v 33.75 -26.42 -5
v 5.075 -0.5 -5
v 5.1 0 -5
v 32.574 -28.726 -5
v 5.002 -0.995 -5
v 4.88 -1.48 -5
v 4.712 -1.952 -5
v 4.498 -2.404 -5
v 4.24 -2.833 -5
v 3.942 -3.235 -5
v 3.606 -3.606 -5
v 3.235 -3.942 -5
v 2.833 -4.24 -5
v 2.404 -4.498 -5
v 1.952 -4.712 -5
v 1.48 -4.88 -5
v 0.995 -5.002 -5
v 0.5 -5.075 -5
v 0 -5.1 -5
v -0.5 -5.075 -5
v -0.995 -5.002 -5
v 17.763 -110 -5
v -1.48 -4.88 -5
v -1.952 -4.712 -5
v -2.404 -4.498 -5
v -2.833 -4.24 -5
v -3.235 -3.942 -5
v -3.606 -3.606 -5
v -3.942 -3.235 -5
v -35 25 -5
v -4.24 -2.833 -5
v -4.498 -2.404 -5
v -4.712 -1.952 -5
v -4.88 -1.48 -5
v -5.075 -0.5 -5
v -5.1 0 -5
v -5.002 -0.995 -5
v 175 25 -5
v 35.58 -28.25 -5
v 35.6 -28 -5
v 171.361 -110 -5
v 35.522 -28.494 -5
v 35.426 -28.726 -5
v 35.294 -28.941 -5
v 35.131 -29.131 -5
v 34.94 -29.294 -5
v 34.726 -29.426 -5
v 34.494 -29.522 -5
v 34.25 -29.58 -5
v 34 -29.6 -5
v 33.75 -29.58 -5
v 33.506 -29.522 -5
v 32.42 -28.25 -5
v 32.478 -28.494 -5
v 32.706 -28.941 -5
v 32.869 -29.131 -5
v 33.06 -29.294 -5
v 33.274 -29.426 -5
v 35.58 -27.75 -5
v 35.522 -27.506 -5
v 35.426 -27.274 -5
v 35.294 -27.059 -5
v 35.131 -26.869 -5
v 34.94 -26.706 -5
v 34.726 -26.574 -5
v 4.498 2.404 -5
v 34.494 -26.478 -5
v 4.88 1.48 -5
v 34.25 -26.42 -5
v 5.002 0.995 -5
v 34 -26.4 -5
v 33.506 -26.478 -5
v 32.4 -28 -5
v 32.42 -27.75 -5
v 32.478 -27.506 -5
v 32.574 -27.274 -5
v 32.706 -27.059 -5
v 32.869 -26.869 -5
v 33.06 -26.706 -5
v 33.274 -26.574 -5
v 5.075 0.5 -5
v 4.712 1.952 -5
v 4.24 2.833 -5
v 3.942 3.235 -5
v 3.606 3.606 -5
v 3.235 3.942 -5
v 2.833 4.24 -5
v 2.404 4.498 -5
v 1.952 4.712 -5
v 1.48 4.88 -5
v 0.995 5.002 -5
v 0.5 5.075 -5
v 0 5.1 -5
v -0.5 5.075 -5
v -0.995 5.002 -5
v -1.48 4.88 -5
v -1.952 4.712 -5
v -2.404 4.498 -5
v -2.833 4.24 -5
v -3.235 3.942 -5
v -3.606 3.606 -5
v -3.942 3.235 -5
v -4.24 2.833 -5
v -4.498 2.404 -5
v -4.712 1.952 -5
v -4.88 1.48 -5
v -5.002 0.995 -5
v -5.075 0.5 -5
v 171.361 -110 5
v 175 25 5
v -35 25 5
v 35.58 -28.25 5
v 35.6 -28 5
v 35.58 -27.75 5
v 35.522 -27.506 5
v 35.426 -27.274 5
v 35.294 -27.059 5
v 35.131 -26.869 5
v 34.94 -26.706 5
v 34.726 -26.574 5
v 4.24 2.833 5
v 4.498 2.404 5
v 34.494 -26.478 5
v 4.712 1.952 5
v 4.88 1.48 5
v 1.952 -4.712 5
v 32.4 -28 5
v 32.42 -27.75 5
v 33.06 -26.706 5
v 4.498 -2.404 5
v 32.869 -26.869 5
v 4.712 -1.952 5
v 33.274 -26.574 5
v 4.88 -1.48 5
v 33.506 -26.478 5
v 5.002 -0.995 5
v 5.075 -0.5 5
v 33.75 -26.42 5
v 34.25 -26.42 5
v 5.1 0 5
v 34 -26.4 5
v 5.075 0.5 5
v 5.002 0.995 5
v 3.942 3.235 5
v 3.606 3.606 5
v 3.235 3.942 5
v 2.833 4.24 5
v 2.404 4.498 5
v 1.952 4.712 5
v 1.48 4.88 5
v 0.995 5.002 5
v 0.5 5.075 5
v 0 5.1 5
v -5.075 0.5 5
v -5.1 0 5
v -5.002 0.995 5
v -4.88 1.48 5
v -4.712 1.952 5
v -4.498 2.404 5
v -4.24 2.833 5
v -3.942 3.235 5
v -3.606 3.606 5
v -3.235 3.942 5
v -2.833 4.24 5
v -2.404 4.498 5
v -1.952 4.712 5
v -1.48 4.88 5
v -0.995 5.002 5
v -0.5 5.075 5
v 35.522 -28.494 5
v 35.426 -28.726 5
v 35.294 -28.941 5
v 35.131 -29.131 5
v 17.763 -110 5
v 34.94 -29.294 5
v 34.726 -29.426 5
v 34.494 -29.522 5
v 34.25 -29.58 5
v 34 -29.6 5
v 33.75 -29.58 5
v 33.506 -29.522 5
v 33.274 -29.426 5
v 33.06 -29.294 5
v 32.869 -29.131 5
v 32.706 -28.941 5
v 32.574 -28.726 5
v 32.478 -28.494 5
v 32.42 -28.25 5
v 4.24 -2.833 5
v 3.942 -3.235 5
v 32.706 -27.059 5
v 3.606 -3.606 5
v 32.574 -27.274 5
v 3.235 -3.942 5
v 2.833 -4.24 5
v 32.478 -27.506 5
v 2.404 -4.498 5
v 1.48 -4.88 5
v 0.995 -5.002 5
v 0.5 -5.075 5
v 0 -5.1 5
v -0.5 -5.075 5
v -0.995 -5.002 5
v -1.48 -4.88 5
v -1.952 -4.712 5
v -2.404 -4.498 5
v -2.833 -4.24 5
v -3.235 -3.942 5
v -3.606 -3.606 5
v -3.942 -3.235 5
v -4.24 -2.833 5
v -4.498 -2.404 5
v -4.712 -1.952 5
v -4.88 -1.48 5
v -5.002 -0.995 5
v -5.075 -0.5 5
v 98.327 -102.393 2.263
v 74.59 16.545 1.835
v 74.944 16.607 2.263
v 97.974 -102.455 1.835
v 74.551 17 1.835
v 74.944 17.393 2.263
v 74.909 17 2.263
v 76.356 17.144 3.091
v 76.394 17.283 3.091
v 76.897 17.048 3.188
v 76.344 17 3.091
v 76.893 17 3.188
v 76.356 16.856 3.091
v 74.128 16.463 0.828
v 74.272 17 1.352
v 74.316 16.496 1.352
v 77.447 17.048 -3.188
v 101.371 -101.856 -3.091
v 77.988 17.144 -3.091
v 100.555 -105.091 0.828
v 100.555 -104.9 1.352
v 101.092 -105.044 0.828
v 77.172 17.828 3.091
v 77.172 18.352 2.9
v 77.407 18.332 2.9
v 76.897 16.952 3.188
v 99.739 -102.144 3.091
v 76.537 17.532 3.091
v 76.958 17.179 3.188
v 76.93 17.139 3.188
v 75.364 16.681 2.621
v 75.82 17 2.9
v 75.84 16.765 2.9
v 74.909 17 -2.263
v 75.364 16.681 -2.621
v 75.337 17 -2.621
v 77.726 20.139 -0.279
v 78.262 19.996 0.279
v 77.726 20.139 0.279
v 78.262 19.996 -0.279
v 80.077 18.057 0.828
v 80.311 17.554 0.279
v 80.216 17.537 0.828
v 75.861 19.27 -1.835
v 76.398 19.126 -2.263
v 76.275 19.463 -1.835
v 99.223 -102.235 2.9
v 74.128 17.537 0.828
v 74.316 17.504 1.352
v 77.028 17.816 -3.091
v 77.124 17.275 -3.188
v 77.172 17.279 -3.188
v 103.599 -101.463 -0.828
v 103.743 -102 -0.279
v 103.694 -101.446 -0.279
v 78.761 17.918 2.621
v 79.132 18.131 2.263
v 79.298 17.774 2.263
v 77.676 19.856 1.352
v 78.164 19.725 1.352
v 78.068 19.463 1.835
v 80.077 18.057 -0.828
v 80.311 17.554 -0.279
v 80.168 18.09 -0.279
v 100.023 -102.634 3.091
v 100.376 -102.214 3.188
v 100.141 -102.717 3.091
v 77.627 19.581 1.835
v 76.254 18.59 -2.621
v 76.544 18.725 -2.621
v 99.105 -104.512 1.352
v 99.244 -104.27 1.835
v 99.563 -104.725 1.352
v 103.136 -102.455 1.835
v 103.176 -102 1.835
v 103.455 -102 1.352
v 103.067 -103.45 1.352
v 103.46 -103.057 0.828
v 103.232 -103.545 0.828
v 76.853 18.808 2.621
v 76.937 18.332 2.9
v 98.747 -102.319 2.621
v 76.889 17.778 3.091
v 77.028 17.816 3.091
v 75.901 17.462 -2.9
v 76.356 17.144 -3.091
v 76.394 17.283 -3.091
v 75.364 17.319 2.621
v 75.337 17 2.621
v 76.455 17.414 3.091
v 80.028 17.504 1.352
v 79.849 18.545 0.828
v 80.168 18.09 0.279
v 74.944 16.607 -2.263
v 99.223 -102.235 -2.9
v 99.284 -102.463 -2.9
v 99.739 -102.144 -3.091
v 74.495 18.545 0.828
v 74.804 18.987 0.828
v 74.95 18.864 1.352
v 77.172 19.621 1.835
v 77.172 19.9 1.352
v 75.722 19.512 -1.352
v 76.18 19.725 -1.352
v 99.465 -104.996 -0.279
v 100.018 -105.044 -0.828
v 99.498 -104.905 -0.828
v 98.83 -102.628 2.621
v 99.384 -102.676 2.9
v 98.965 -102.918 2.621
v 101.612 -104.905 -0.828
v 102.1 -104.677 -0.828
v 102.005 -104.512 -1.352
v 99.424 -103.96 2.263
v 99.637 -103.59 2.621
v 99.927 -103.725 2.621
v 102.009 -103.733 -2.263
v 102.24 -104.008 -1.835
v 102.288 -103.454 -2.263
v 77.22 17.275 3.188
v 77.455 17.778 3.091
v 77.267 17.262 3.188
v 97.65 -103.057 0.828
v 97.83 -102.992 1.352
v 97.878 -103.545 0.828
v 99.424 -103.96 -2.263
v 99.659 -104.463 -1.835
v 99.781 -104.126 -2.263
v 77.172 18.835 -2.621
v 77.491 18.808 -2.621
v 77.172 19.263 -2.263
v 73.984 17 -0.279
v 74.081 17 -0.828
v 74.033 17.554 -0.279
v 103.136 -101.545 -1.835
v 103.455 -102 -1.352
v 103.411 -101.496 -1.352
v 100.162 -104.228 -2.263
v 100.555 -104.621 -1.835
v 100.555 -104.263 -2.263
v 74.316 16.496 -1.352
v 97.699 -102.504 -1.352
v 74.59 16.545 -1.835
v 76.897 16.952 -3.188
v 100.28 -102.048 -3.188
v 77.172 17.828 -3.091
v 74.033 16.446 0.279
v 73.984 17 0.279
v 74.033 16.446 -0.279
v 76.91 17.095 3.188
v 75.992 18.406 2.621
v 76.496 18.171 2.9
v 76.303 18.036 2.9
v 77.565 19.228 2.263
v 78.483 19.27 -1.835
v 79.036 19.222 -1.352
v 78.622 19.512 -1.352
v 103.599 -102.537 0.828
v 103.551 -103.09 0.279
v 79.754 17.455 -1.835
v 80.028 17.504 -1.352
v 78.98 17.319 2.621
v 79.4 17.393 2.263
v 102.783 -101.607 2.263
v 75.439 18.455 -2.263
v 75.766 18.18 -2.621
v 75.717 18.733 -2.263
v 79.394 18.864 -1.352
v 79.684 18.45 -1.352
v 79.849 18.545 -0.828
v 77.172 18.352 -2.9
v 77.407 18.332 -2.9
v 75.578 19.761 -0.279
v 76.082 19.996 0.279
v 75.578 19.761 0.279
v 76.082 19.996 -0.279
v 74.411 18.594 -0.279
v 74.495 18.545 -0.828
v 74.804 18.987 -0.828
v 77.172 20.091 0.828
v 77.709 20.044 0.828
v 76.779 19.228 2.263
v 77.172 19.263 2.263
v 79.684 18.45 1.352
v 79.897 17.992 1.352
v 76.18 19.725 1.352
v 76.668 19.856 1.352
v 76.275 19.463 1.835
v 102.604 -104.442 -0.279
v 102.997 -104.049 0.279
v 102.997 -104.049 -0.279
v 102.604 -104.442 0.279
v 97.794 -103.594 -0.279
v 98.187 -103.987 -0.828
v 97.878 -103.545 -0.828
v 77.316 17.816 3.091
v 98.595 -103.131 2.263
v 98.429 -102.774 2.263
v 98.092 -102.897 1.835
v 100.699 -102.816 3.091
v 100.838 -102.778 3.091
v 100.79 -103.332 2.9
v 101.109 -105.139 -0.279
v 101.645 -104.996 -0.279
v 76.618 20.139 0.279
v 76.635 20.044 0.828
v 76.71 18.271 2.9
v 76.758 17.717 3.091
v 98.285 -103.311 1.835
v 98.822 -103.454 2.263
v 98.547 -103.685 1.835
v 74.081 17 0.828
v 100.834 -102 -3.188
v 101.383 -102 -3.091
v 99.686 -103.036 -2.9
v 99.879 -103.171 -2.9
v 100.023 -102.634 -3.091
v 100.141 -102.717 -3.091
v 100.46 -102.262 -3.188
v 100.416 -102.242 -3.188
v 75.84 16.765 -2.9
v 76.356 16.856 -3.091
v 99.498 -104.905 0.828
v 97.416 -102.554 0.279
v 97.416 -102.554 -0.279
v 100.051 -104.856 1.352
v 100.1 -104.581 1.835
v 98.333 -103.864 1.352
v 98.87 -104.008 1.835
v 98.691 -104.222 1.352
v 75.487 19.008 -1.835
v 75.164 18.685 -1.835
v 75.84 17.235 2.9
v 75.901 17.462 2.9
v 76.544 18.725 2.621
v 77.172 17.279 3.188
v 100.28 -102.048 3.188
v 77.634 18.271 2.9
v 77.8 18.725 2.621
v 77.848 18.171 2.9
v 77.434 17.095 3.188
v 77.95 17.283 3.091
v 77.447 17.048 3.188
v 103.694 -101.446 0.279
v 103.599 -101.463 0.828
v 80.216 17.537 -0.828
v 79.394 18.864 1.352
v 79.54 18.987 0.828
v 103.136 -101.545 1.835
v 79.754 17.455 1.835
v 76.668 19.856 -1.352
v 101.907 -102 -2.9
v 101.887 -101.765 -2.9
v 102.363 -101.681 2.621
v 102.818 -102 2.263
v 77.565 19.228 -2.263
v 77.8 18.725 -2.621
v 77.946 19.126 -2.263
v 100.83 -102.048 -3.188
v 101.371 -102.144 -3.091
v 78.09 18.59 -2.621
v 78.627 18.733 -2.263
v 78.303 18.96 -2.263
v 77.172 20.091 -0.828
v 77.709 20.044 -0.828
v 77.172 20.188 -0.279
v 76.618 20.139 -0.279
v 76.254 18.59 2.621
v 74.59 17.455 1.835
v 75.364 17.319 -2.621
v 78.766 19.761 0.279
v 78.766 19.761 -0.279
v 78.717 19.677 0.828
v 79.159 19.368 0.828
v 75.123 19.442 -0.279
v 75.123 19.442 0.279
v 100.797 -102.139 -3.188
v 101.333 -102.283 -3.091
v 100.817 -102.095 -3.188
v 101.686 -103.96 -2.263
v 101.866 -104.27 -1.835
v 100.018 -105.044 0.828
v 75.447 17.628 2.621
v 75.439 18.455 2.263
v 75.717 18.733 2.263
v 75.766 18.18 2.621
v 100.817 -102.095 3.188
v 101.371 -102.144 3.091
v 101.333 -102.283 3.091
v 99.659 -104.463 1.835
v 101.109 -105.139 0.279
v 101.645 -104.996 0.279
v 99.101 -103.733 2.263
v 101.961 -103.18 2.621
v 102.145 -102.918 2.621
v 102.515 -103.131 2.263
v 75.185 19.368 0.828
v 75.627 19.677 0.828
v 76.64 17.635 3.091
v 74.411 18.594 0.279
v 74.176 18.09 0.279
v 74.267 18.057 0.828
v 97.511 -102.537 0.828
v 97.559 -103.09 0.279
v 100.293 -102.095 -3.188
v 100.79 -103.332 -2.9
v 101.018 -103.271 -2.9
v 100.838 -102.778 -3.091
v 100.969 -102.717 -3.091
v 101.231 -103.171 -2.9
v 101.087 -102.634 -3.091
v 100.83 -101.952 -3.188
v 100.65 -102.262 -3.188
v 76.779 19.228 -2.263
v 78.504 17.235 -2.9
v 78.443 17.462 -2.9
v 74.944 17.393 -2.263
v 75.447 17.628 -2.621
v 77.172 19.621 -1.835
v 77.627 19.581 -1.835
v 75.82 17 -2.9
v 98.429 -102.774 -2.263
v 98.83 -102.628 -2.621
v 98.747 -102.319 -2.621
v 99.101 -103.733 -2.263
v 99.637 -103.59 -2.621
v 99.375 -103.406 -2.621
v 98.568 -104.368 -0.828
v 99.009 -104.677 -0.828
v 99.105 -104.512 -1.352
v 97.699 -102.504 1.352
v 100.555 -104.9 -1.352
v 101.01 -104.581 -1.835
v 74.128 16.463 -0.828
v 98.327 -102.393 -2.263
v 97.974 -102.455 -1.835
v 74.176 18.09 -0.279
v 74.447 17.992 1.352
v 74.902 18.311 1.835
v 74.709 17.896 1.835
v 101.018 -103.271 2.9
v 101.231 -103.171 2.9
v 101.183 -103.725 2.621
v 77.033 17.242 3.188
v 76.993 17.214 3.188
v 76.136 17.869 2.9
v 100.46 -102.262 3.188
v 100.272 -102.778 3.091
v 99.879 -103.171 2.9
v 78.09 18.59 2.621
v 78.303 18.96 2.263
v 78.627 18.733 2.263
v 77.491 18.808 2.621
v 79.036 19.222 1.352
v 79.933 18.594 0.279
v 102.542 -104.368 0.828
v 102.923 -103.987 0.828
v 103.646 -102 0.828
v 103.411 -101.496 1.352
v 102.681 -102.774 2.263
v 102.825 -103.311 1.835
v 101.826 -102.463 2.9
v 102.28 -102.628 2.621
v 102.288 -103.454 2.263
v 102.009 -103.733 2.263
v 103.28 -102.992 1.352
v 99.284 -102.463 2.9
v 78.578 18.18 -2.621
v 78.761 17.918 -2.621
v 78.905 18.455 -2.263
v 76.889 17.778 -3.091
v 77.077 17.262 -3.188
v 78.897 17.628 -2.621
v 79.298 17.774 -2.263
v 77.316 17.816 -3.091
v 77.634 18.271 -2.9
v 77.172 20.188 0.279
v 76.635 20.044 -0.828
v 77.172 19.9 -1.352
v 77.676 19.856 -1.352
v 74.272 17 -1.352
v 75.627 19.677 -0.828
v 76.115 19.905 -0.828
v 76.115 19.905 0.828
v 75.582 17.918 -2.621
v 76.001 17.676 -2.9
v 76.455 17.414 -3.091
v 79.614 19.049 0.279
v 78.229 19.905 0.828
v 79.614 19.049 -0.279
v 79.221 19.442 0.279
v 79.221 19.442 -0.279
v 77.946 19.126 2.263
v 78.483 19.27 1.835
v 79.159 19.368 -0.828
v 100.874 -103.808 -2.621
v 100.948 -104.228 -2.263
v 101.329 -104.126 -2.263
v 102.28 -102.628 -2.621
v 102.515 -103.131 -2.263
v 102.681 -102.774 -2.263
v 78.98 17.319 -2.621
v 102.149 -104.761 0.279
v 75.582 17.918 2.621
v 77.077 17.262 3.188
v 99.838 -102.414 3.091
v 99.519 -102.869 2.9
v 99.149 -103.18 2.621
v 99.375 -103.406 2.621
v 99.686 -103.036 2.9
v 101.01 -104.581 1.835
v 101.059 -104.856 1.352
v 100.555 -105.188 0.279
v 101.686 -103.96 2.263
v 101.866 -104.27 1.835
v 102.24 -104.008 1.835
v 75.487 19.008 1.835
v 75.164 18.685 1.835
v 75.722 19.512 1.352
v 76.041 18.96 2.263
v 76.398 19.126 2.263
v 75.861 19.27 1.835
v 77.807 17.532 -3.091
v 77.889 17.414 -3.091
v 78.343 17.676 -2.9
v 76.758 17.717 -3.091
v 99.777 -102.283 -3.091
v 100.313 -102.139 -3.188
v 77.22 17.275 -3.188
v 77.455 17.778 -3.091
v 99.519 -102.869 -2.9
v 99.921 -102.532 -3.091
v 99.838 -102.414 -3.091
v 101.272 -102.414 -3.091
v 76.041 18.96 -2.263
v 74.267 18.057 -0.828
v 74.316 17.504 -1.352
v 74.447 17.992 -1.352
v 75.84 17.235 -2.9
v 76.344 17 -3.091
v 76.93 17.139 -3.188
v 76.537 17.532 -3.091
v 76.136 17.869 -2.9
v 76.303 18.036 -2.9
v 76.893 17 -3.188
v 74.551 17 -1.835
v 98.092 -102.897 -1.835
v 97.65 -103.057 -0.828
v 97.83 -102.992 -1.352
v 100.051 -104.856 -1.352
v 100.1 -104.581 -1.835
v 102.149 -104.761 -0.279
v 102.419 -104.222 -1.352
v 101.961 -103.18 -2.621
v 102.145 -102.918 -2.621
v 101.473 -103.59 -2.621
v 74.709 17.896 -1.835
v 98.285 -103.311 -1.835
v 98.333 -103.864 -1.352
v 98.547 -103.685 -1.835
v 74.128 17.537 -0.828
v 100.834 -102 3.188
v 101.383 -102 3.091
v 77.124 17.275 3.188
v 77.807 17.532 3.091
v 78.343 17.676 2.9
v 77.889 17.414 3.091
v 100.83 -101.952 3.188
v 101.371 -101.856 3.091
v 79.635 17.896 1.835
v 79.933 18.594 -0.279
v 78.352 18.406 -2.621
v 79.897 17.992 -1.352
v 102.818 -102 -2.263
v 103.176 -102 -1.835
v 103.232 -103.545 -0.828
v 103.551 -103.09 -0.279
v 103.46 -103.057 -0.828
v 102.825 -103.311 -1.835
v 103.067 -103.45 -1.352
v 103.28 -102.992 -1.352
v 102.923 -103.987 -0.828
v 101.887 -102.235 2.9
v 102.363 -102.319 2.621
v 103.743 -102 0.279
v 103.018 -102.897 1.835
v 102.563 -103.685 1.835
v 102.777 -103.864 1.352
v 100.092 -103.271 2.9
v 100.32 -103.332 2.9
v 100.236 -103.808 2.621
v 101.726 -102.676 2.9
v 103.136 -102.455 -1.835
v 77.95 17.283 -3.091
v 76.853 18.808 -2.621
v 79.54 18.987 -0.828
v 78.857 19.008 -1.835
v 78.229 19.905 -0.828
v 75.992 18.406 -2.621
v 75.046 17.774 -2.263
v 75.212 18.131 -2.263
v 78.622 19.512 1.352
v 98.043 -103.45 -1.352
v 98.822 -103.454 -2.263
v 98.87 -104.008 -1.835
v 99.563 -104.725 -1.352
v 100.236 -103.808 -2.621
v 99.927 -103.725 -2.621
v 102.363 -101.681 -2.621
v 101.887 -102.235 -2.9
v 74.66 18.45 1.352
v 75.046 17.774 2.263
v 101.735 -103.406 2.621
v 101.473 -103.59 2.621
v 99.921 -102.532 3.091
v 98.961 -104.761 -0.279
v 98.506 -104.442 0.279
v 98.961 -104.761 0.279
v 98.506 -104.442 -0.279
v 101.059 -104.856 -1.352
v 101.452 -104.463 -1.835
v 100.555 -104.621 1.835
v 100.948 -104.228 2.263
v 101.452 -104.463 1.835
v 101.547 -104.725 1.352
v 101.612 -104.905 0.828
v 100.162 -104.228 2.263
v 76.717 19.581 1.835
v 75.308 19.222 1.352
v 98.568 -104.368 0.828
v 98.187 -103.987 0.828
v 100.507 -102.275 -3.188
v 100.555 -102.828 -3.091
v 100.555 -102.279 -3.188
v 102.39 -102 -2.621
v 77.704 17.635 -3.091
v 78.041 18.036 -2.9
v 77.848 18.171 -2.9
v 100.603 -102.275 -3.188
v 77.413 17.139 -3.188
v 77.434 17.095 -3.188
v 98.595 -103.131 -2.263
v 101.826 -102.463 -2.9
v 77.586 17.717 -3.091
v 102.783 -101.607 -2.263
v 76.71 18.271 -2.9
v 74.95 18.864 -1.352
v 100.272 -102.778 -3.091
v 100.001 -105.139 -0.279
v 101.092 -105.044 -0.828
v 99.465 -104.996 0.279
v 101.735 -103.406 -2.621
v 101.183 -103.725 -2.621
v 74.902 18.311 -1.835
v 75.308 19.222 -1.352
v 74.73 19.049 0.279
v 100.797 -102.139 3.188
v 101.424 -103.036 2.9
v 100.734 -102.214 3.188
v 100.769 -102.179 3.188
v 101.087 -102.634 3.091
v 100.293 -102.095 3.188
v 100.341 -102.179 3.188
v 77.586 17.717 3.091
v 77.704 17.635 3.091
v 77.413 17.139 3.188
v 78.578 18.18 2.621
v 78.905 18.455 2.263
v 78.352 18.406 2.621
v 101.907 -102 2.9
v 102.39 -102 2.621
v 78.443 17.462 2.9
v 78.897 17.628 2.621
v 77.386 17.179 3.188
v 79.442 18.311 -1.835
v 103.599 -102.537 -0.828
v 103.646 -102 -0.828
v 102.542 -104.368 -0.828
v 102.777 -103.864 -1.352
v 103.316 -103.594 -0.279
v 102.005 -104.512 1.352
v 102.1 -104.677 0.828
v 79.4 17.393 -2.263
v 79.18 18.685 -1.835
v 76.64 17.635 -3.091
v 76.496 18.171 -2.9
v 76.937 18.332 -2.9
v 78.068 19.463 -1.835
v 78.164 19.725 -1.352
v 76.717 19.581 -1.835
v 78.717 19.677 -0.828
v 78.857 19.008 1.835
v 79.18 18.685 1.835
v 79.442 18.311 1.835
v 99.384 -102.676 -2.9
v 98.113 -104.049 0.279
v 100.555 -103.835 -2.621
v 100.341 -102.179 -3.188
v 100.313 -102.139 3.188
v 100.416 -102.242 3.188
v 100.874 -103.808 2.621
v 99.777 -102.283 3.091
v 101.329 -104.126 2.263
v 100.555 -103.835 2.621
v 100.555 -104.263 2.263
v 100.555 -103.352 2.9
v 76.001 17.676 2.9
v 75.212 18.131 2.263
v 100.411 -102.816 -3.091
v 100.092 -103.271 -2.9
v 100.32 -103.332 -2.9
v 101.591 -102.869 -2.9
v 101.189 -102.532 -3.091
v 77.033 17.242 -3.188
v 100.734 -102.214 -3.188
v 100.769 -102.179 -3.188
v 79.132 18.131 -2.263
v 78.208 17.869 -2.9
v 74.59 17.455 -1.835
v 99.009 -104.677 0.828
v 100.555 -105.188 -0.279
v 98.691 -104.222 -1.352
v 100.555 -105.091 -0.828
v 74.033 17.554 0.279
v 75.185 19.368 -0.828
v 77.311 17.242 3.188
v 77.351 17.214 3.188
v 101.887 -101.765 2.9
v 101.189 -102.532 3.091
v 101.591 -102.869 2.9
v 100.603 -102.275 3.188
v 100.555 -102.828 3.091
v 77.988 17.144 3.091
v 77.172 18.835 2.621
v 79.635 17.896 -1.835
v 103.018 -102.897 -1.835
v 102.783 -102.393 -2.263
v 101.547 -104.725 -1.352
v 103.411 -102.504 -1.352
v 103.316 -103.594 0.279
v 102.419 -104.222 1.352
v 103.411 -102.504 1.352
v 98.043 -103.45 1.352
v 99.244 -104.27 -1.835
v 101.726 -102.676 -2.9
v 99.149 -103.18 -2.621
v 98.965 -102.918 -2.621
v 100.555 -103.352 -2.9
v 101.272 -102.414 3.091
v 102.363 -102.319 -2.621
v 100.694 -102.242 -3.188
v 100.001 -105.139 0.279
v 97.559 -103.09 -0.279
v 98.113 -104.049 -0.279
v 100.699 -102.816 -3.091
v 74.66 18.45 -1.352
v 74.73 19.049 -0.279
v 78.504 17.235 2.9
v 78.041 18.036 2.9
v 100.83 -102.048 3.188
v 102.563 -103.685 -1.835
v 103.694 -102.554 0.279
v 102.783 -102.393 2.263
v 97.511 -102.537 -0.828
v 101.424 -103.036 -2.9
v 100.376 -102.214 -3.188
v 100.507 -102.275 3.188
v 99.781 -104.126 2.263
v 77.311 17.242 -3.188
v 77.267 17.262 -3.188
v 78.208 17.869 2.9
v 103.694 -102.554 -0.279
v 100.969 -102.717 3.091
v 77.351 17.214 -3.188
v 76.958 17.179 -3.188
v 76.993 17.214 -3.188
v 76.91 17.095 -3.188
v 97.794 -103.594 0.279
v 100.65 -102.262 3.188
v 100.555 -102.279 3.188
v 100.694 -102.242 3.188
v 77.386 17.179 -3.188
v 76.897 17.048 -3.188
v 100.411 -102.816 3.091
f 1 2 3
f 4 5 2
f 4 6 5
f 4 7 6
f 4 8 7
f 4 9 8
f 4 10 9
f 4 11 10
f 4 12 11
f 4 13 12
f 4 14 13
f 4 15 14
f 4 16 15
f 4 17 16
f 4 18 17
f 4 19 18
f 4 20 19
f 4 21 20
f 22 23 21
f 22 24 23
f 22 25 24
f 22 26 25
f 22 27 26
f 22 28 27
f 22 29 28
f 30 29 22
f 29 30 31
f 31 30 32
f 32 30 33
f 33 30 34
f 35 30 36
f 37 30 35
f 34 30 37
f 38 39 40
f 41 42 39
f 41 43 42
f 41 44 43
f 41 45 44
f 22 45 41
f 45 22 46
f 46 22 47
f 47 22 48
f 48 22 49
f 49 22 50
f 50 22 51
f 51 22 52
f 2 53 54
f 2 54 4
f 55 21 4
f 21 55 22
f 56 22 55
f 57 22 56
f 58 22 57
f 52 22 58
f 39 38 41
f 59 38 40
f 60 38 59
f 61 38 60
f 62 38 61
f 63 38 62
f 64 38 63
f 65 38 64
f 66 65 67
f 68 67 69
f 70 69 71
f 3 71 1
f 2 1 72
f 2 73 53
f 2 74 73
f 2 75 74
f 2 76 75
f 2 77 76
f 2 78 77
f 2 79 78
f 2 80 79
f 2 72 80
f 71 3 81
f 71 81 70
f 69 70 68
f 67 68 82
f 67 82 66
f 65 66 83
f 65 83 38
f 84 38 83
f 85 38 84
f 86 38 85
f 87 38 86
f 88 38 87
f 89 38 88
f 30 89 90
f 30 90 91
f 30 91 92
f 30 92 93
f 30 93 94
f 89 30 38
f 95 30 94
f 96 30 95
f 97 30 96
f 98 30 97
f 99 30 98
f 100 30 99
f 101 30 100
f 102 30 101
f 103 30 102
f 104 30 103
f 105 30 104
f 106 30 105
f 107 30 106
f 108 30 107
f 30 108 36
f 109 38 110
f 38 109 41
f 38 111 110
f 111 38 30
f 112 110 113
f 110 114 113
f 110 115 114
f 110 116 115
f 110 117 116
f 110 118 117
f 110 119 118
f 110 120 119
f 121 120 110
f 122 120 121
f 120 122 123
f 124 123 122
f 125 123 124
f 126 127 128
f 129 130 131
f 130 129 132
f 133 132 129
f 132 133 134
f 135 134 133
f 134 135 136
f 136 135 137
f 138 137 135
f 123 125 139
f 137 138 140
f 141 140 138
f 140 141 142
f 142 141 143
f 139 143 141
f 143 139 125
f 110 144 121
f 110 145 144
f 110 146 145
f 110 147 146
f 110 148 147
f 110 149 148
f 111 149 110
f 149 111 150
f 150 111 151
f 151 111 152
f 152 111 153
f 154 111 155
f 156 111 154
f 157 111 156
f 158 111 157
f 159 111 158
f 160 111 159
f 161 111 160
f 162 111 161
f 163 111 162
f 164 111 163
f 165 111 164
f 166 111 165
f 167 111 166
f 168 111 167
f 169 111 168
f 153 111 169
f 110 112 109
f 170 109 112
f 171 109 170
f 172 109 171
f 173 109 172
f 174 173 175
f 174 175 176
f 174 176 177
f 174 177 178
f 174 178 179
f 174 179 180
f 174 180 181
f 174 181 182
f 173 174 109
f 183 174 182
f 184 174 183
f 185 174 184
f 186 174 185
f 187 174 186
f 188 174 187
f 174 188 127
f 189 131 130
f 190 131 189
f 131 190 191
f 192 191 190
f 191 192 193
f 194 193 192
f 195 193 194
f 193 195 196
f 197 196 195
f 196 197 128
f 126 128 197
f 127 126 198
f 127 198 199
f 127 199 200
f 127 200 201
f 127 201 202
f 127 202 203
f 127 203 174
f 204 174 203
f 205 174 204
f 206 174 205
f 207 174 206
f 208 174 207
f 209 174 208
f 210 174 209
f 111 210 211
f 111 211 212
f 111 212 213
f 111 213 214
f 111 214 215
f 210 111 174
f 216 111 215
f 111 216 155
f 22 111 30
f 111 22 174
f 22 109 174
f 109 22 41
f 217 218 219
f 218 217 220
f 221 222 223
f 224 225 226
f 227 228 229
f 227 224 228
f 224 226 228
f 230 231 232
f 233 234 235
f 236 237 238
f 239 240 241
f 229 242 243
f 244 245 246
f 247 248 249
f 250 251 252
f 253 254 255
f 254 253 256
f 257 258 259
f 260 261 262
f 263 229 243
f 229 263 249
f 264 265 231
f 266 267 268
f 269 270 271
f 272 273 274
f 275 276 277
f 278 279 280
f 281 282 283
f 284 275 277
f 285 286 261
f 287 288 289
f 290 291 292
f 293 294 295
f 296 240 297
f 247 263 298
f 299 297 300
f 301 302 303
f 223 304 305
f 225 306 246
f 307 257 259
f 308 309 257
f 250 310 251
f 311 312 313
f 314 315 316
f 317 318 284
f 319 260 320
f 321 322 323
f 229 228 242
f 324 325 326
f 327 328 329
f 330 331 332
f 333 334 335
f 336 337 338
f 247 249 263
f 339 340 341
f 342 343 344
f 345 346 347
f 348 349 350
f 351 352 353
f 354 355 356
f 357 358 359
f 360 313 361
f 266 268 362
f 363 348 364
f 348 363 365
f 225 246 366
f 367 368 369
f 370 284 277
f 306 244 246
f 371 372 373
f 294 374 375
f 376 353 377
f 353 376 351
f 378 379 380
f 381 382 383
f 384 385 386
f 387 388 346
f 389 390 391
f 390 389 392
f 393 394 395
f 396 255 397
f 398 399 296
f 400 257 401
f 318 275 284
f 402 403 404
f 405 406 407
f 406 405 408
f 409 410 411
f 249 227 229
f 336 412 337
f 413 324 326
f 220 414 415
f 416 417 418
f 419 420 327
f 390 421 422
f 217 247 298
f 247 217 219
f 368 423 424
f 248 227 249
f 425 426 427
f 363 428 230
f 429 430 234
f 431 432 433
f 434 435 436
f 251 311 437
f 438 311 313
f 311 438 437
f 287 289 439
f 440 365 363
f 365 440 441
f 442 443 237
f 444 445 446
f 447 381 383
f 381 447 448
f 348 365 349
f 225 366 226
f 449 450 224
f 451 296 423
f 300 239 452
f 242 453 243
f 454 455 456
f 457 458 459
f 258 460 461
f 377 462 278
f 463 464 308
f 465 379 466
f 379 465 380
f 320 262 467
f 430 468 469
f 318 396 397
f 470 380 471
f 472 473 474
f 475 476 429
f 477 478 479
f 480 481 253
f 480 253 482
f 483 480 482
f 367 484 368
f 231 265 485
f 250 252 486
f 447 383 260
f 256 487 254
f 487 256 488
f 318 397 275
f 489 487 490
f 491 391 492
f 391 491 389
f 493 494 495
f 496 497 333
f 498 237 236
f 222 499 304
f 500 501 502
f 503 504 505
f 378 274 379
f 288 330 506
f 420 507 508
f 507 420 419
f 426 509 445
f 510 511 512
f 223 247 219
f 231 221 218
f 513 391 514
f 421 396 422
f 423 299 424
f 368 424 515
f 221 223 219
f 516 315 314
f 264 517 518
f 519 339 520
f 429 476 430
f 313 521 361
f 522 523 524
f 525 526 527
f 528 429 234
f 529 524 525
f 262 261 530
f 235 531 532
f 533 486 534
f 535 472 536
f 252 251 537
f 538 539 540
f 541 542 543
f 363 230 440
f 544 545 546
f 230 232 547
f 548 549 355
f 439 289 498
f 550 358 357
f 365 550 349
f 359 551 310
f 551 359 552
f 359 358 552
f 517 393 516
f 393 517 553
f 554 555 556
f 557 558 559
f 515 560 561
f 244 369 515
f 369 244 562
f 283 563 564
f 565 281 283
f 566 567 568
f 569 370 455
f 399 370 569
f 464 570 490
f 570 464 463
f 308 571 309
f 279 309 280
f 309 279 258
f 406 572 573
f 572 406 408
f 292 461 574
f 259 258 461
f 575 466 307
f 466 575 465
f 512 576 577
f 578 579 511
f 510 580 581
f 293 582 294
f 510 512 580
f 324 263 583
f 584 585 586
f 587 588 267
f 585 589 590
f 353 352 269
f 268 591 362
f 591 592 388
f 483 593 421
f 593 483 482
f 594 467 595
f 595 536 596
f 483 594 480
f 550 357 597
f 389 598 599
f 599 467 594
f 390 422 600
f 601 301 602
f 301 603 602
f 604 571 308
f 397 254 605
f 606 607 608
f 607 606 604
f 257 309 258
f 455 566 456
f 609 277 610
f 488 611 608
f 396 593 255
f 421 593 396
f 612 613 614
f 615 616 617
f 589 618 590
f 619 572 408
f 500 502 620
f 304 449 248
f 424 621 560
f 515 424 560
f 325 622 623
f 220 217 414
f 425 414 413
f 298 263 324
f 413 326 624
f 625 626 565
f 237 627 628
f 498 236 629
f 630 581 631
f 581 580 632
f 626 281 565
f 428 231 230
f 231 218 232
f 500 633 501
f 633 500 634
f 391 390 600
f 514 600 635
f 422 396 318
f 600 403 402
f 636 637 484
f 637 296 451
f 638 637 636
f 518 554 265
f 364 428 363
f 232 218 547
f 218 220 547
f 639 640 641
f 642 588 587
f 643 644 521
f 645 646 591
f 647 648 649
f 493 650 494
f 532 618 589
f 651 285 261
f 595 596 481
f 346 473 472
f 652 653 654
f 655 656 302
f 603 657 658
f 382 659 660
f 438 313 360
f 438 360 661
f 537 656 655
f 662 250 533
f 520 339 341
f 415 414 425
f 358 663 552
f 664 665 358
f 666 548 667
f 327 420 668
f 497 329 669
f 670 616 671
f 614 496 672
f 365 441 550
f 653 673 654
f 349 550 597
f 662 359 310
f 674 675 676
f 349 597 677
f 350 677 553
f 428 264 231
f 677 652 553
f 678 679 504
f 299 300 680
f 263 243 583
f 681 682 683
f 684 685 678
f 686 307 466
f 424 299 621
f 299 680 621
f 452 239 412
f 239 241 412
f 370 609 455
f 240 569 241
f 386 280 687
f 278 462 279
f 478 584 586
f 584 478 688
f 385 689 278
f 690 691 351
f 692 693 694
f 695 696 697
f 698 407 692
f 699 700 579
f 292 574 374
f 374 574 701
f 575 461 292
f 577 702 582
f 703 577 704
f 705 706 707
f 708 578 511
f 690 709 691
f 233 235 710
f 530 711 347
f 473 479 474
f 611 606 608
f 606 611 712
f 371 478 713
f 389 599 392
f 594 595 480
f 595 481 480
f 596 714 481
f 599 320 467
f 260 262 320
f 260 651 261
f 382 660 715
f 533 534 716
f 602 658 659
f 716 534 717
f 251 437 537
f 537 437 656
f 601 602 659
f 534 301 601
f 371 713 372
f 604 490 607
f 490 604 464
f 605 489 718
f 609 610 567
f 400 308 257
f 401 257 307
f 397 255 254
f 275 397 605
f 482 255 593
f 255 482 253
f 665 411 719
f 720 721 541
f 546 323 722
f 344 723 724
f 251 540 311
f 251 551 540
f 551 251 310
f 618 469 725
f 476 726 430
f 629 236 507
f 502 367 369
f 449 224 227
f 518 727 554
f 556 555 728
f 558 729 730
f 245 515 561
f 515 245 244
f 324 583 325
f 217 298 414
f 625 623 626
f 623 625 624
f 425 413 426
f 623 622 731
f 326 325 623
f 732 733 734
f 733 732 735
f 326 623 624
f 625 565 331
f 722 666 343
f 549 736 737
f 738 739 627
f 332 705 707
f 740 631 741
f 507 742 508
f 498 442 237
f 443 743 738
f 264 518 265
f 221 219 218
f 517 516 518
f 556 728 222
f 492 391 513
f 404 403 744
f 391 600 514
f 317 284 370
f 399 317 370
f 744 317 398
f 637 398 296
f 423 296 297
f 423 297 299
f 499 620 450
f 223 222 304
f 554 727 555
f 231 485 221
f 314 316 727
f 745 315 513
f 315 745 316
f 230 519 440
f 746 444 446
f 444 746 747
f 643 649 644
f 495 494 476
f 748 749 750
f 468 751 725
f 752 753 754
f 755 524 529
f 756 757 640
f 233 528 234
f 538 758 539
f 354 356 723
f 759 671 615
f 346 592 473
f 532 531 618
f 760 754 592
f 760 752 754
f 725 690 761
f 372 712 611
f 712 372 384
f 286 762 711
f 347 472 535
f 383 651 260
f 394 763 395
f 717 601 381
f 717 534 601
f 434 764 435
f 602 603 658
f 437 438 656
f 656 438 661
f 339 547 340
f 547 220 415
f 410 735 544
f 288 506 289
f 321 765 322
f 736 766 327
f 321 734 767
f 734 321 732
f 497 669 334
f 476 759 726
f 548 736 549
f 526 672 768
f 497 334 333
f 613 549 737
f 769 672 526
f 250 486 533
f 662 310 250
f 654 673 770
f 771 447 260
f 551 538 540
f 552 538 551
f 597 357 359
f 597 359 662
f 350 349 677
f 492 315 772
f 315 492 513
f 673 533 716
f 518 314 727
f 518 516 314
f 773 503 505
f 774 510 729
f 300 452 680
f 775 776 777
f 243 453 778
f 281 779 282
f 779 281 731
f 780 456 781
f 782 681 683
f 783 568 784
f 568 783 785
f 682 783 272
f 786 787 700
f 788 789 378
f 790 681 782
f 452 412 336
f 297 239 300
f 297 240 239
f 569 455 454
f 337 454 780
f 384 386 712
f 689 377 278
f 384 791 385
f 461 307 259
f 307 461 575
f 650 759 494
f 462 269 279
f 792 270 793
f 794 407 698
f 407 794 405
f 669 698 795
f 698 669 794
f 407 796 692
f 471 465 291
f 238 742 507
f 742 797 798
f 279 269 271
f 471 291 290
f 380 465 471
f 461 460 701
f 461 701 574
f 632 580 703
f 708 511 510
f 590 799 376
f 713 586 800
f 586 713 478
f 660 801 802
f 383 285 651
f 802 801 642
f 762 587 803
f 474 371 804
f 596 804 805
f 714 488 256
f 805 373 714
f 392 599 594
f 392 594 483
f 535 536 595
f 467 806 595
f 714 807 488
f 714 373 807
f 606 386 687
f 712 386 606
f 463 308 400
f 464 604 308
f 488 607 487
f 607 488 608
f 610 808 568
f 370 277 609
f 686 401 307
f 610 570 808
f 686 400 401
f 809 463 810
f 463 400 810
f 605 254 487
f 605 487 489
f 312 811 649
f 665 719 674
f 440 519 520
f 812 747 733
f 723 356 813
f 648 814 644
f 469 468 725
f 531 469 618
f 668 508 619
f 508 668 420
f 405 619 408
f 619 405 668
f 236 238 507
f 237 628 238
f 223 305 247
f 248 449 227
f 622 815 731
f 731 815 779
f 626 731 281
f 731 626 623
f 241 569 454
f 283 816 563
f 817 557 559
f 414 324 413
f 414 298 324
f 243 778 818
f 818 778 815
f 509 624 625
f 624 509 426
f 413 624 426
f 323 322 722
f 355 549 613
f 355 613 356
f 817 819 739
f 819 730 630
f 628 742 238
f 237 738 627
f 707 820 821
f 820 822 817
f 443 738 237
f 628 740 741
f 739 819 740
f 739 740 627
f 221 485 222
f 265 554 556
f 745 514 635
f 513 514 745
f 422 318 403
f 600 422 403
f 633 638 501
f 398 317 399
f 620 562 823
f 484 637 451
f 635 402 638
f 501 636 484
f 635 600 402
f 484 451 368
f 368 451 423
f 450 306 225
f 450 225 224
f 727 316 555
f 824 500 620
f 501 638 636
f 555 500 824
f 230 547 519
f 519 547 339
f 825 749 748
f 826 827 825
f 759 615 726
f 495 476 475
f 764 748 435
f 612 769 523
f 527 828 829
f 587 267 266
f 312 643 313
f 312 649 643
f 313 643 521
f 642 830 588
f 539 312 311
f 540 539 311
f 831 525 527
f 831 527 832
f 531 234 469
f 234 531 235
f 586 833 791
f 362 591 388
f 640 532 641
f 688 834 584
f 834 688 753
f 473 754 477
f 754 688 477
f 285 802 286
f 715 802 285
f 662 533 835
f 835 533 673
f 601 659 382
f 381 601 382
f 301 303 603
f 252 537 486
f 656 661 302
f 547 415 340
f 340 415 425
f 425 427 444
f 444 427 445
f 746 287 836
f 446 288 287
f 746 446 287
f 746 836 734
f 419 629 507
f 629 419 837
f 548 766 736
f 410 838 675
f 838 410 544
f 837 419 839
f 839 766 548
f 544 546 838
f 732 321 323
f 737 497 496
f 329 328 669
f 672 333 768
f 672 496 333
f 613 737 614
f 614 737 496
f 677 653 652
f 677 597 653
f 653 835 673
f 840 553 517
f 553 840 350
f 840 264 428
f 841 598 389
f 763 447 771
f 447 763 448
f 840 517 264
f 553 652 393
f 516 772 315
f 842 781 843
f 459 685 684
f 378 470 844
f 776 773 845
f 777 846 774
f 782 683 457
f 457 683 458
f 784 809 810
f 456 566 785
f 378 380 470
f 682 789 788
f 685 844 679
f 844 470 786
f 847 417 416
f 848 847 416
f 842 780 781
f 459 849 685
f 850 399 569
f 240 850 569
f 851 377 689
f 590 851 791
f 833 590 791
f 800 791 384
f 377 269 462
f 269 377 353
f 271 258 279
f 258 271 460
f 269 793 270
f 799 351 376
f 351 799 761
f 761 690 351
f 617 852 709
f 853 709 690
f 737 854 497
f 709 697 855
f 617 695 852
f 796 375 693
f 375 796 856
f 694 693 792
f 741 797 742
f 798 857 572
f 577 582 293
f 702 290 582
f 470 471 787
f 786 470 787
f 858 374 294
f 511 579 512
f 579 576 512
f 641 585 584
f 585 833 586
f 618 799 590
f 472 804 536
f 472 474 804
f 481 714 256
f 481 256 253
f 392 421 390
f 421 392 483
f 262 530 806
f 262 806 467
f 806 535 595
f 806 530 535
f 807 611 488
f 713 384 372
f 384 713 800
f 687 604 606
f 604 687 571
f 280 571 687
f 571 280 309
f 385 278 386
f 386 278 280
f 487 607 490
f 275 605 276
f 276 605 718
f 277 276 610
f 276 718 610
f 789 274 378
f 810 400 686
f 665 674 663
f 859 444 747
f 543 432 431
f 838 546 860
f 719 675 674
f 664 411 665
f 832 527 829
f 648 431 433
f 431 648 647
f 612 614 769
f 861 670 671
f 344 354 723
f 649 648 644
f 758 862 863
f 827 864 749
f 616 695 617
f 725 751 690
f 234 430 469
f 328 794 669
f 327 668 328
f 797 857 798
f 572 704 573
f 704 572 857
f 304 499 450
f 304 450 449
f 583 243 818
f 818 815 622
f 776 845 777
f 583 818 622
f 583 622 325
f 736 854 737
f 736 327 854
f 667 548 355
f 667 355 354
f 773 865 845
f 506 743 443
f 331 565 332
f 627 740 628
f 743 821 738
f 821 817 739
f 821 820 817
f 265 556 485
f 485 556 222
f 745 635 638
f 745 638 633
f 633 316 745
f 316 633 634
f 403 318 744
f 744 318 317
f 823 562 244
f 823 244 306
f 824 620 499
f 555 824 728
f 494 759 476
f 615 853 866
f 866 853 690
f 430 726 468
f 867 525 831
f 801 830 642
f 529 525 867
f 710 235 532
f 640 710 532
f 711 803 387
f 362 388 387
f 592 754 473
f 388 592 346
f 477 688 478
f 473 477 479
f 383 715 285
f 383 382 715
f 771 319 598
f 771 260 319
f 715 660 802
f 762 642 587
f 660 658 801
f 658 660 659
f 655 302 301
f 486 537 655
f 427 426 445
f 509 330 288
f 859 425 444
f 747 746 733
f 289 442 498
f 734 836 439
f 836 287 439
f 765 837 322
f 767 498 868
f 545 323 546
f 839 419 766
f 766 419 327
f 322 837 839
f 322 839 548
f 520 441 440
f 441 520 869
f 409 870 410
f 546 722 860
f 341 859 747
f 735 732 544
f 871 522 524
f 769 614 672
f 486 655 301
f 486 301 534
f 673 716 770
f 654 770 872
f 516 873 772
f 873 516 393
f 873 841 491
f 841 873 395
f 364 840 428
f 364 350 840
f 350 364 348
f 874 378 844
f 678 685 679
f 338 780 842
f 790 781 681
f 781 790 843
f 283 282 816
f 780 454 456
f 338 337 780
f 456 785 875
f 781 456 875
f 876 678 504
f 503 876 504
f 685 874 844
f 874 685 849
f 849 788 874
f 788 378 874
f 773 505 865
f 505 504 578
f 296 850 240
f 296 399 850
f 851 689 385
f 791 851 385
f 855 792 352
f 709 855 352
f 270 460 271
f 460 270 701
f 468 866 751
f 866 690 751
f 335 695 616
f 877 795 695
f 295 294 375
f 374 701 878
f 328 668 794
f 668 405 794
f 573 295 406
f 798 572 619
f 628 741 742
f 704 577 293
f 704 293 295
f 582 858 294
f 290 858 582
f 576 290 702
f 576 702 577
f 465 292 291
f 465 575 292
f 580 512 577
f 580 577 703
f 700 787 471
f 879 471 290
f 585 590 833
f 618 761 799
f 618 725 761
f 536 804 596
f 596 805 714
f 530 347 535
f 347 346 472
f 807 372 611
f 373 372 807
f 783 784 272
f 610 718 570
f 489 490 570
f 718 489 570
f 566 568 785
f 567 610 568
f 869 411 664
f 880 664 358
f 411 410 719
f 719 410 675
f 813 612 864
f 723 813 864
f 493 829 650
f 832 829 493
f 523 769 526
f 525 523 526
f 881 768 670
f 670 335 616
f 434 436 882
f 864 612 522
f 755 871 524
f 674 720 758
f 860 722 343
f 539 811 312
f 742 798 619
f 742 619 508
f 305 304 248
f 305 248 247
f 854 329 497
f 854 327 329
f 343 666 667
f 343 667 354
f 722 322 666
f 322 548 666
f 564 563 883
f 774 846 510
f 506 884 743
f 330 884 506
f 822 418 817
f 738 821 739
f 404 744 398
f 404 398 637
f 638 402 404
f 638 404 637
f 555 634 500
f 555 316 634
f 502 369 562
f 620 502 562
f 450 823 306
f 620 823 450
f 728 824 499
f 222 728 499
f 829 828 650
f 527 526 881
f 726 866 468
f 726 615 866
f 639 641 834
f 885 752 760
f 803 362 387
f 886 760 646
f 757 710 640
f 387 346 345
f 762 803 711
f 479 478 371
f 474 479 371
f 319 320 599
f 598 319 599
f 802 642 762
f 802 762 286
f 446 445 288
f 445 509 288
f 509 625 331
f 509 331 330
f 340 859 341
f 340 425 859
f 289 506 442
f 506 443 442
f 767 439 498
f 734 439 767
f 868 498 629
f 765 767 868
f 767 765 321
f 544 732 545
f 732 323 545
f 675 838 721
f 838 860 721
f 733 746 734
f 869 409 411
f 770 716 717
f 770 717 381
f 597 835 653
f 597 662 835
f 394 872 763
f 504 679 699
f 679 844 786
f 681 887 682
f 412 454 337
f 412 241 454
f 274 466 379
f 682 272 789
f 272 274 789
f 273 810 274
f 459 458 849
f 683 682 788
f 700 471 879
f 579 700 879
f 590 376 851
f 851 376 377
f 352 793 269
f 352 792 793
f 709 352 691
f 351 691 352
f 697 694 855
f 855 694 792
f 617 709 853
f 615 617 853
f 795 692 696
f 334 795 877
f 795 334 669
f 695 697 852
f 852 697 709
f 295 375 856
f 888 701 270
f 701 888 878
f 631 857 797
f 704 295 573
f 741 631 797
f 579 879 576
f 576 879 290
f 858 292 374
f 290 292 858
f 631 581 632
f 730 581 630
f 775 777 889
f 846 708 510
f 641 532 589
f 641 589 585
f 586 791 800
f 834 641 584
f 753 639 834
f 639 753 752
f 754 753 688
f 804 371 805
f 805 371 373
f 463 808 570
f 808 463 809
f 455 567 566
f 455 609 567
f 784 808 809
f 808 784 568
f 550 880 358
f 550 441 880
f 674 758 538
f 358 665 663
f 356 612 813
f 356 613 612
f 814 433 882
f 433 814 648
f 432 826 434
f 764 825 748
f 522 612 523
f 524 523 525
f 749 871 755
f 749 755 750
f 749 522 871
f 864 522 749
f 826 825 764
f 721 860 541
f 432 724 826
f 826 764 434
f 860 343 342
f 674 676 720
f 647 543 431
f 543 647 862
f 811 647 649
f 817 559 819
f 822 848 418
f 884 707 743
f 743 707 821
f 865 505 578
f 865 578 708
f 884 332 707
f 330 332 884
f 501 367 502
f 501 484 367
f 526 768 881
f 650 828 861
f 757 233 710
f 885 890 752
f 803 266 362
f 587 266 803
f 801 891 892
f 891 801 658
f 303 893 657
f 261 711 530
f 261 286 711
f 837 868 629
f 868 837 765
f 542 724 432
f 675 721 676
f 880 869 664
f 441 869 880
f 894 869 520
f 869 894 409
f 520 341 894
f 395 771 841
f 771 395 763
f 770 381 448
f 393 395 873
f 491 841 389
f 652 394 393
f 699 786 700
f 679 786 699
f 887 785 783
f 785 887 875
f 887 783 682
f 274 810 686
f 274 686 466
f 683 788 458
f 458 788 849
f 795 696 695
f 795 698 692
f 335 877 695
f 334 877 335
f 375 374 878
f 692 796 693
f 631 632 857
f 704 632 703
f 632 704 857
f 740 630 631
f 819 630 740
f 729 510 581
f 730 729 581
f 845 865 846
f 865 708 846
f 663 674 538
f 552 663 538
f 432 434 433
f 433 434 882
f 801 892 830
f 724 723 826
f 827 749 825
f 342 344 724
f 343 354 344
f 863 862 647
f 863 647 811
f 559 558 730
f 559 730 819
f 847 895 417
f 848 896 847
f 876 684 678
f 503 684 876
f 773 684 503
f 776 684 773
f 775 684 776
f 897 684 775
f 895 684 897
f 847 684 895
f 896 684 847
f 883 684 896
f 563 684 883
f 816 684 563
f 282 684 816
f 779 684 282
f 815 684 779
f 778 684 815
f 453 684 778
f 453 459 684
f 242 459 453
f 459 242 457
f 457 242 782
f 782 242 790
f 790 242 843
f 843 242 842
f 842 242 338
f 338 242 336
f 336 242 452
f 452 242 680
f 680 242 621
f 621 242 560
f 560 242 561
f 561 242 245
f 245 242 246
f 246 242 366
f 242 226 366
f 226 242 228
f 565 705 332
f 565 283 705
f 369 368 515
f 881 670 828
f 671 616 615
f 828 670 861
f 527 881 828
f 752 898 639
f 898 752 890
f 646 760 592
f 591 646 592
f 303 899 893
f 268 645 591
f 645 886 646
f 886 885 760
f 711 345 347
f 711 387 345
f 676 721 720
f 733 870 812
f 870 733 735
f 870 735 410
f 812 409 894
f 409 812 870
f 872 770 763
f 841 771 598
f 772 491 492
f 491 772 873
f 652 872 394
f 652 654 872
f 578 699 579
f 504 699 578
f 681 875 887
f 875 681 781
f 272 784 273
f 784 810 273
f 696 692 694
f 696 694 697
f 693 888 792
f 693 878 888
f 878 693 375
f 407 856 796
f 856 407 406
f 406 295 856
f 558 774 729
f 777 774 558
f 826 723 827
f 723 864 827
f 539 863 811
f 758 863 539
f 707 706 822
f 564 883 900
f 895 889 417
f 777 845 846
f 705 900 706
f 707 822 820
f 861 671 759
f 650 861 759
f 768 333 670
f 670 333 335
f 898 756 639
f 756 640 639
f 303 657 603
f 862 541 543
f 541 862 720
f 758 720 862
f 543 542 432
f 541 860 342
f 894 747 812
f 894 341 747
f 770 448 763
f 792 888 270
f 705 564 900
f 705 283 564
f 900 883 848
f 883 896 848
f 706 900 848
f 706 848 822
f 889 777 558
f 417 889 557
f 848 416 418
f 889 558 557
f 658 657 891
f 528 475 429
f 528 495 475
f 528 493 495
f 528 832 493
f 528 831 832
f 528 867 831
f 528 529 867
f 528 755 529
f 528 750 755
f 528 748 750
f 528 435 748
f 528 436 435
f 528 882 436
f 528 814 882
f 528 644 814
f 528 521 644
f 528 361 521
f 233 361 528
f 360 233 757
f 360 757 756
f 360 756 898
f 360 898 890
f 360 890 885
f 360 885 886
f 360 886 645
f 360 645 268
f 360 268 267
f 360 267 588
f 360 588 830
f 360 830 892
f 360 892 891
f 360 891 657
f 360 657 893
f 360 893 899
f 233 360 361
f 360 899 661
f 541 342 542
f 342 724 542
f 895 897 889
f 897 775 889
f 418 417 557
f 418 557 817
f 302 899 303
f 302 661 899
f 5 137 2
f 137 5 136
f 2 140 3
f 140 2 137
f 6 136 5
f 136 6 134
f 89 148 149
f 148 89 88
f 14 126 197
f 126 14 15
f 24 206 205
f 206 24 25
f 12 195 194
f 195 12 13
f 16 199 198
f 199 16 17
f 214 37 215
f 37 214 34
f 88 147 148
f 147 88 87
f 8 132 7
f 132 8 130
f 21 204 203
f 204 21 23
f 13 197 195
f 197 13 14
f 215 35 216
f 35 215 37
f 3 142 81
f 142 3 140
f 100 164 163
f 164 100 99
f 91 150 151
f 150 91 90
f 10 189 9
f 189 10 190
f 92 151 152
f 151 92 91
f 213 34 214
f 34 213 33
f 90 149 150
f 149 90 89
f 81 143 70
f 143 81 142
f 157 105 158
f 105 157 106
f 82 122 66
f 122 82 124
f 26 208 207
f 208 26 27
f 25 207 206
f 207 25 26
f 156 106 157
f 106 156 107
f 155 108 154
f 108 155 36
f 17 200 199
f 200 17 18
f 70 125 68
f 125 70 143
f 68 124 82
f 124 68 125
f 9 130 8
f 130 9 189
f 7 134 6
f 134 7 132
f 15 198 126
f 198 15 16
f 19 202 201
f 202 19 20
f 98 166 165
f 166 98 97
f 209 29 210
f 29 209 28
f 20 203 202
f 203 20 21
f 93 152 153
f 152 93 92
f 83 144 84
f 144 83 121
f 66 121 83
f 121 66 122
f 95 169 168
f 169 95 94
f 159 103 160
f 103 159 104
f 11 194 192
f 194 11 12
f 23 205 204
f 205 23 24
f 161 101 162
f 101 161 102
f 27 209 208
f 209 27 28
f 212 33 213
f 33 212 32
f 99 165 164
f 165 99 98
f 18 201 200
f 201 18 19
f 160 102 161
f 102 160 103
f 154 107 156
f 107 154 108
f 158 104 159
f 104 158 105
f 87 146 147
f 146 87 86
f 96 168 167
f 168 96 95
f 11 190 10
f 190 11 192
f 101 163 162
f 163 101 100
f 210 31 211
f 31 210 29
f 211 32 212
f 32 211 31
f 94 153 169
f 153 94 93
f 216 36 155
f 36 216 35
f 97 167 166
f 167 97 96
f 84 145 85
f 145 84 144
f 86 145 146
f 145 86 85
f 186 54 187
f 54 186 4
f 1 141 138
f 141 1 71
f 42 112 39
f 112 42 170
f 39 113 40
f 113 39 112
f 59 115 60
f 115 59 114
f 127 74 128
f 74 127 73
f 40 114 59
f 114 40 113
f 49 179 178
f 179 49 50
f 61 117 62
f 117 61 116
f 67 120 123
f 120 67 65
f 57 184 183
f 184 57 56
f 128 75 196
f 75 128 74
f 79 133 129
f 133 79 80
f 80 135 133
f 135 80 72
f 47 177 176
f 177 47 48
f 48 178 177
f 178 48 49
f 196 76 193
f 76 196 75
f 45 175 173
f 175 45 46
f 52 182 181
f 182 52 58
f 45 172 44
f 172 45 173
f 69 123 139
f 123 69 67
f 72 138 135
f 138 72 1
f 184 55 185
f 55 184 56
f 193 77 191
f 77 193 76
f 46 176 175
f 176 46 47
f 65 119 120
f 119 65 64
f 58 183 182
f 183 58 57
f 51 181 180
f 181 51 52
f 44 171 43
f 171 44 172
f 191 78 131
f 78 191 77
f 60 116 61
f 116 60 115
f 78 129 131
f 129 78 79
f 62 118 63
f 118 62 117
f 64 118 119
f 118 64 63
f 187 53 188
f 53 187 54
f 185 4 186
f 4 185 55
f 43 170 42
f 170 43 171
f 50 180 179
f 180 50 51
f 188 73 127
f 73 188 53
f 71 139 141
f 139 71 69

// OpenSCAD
$fn=64;
module raw(){linear_extrude(height=10,center=true) polygon(points=[[-35.00000,-25.00000],[175.00000,-25.00000],[171.36119,110.00000],[17.76280,110.00000]]);}
module spar(){hull(){translate([77.1720,-17.0000,0]) sphere(d=6.4,$fn=36); translate([100.5550,102.0000,0]) sphere(d=6.4,$fn=36);}}
module wing(){difference(){raw(); spar(); translate([0,0,-8]) cylinder(h=16,d=10.2,$fn=64); translate([34,28,-8]) cylinder(h=16,d=3.2,$fn=40);}}
mirror([0,1,0]) wing();
